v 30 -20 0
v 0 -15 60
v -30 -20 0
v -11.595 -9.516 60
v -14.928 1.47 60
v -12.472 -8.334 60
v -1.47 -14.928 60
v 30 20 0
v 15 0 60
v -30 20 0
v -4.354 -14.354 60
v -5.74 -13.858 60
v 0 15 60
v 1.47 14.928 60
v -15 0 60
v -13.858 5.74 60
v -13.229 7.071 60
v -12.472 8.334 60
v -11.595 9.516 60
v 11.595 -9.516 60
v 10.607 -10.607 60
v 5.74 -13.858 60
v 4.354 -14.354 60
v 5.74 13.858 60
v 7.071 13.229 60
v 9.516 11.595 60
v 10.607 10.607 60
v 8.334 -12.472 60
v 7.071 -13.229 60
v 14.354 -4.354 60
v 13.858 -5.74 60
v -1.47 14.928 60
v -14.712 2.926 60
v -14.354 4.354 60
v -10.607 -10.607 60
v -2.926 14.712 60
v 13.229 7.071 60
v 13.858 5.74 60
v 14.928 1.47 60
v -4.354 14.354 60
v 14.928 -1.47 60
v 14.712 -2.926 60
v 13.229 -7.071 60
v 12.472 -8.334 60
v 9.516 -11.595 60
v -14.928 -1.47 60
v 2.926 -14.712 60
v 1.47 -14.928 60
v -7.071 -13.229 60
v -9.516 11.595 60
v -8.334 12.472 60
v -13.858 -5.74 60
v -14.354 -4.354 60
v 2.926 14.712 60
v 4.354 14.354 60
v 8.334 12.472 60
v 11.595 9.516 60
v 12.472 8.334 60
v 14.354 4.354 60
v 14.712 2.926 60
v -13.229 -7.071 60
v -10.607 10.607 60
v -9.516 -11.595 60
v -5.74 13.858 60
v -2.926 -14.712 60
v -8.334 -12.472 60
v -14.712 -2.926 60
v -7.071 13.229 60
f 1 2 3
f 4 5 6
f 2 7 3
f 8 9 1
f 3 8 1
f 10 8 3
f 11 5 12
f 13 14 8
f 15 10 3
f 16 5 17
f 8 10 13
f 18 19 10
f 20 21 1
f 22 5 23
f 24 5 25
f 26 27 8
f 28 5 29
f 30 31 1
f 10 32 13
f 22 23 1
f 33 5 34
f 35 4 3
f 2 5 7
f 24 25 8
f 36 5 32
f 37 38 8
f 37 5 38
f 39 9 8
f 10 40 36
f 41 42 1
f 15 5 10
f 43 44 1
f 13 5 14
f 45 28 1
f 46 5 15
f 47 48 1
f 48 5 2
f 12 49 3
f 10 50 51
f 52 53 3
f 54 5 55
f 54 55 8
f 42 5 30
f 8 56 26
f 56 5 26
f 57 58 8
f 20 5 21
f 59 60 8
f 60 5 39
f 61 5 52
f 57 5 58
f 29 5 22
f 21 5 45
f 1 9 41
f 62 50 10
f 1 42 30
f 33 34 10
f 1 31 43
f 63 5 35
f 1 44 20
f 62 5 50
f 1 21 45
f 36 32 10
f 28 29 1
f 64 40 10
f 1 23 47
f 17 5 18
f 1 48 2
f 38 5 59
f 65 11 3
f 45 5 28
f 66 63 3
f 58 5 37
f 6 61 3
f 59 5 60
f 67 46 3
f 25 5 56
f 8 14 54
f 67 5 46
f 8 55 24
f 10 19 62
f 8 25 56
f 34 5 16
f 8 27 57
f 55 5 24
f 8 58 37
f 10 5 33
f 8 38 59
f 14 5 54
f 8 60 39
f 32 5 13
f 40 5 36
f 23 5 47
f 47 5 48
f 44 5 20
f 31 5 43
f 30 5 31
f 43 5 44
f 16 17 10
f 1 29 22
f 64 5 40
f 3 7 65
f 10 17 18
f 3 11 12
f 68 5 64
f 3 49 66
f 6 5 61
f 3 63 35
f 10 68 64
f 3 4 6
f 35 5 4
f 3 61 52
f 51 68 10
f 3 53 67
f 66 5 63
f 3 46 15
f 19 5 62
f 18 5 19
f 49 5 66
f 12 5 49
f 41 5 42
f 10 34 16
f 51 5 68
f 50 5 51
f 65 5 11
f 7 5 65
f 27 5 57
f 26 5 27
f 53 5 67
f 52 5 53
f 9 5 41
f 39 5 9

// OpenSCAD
/* doodle-meta {"version":1,"parameters":{"width":{"label":"Base Width","description":"Width of the rectangular base along X","unit":"mm","feature":"base_width"},"depth":{"label":"Base Depth","description":"Depth of the rectangular base along Y","unit":"mm","feature":"base_depth"},"height":{"label":"Height","description":"Total height of the transition piece","unit":"mm","feature":"height"},"diameter":{"label":"Top Diameter","description":"Diameter of the circular top","unit":"mm","feature":"top_diameter"}},"features":{"base_width":{"kind":"dimension","axis":"x","label":"Base Width"},"base_depth":{"kind":"dimension","axis":"y","label":"Base Depth"},"height":{"kind":"dimension","axis":"z","label":"Height"},"top_diameter":{"kind":"dimension","axis":"z","label":"Top Diameter"}}} */

// Parameters
width = 60.0;
depth = 40.0;
height = 60.0;
diameter = 30.0;

// Derived parameters
radius = diameter / 2;
$fn = 64;

// Main design
transition_piece();

module transition_piece() {
    // The object is a loft from a rectangle at Z=0 to a circle at Z=height.
    // We approximate this by stacking thin slices.
    // To ensure watertightness and manifoldness, we use a union of frustums or slices.
    // Using slices with slight overlap is robust.
    
    num_slices = 60;
    slice_height = height / num_slices;
    overlap = 0.1; // Small overlap to ensure union is watertight
    
    for (i = [0 : num_slices - 1]) {
        z_bottom = i * slice_height;
        z_top = (i + 1) * slice_height;
        
        // Interpolate dimensions at z_bottom and z_top
        // t goes from 0 at bottom to 1 at top
        t_bottom = z_bottom / height;
        t_top = z_top / height;
        
        // Width and Depth interpolate from base to diameter
        w_bottom = width * (1 - t_bottom) + diameter * t_bottom;
        d_bottom = depth * (1 - t_bottom) + diameter * t_bottom;
        
        w_top = width * (1 - t_top) + diameter * t_top;
        d_top = depth * (1 - t_top) + diameter * t_top;
        
        // Create a frustum for this slice
        // The slice spans from z_bottom to z_top + overlap to ensure connection with next slice
        // But we must be careful not to overshoot the total height.
        // Actually, simpler: just make each slice a frustum from z_bottom to z_top.
        // To ensure union works, we can make them slightly taller or rely on exact face matching.
        // Exact face matching in OpenSCAD can be tricky. Let's use a small overlap.
        
        // We need to center the geometry.
        // Base is centered at X=0, Y=0. Top is centered at X=0, Y=0.
        
        // Frustum from (w_bottom, d_bottom) at z_bottom to (w_top, d_top) at z_top
        // We extend the top of the slice by 'overlap' to merge with the next one.
        // However, the last slice should not extend beyond height.
        
        actual_z_top = (i == num_slices - 1) ? height : z_top + overlap;
        
        // Interpolate dimensions at actual_z_top
        t_actual_top = actual_z_top / height;
        w_actual_top = width * (1 - t_actual_top) + diameter * t_actual_top;
        d_actual_top = depth * (1 - t_actual_top) + diameter * t_actual_top;
        
        slice_frustum(w_bottom, d_bottom, w_actual_top, d_actual_top, z_bottom, actual_z_top);
    }
}

module slice_frustum(w1, d1, w2, d2, z1, z2) {
    // Creates a frustum connecting a rectangle w1xd1 at z1 to w2xd2 at z2
    // Centered on X and Y axes
    
    // We can construct this by creating a polyhedron or by using hull() of two cubes.
    // hull() is robust for convex shapes.
    
    // Cube 1 at z1
    translate([0, 0, z1]) {
        cube([w1, d1, 0.001], center=true);
    }
    
    // Cube 2 at z2
    translate([0, 0, z2]) {
        cube([w2, d2, 0.001], center=true);
    }
    
    // Hull them
    // Note: hull() of two cubes centered on Z axis creates the frustum.
    // But we need to be careful with the "center=true" and translation.
    // The cubes are thin slabs. Hulling them creates the solid between them.
    
    // Wait, hull() of two thin cubes might not be perfectly watertight if they are just planes.
    // Better to use actual small cubes or just rely on the fact that hull() of two convex polyhedra is convex.
    // Let's use small cubes with height 0.001 centered at z1 and z2.
    
    // Actually, standard practice for loft in OpenSCAD without libraries is often hull() of two shapes.
    // If we hull two cubes, we get the frustum.
    
    // Let's refine the slice approach. Instead of many slices, we can just hull the base and top?
    // No, hull(rect, circle) creates a shape where the sides are straight lines from the corners of the rect to the tangent points of the circle?
    // Actually, hull() of a rectangle and a circle creates a shape that is the convex hull.
    // The convex hull of a rectangle and a concentric circle (where circle is inside the rect's bounding box) 
    // will have flat faces connecting the rectangle corners to the circle.
    // This matches the "linear taper" description if we consider the "sides" as the convex hull faces.
    // However, a true loft usually interpolates the perimeter.
    // The prompt says "linear taper of the sides".
    // If we just hull the base rectangle and the top circle, we get a shape that is the convex hull.
    // Is that what is intended? "Transition piece" usually implies a loft.
    // A loft from rect to circle typically has curved sides if done with NURBS, but "linear taper" suggests ruled surfaces.
    // The convex hull is a ruled surface between the two shapes.
    // Let's try the simple hull first. It's robust and likely what is meant by "linear taper" in a simple CAD context.
    
    // Let's re-evaluate. The prompt mentions "linear taper of the sides in the XZ plane".
    // Front view is a trapezoid. This means the width tapers linearly.
    // If we hull a rectangle and a circle, the front view (projection onto XZ) will be a trapezoid?
    // The rectangle projects to a line of width W. The circle projects to a line of width D.
    // The hull of these two lines is a trapezoid. Yes.
    // The side view (projection onto YZ) will be a trapezoid from Depth to Diameter. Yes.
    // The top view is the circle. Yes.
    // The bottom view is the rectangle. Yes.
    
    // So, a simple hull() of the base rectangle and the top circle is sufficient and correct.
    
    // Let's implement the simple hull.
    
    // Base Rectangle
    translate([0, 0, 0]) {
        cube([width, depth, 0.001], center=true);
    }
    
    // Top Circle
    translate([0, 0, height]) {
        cylinder(h=0.001, r=radius, center=true);
    }
    
    // Hull them
    // We need to wrap the two shapes in a hull() call.
    // But we can't hull() inside a module call easily if we want to keep it clean.
    // Let's just put the hull at the top level or in a module.
    
    // Wait, the previous slice approach was also valid. Hull is simpler.
    // Let's use hull.
    
    // Correction: The previous code block had a loop. I will replace it with the hull approach.
    // But wait, I already wrote the loop. I should stick to one method.
    // The hull method is much cleaner.
    
    // Let's rewrite the module to use hull.
}

// Redefining the main module to use hull
module transition_piece() {
    hull() {
        // Base: Rectangle 60x40 at Z=0
        translate([0, 0, 0]) {
            cube([width, depth, 0.001], center=true);
        }
        
        // Top: Circle diameter 30 at Z=height
        translate([0, 0, height]) {
            cylinder(h=0.001, r=radius, center=true);
        }
    }
}
